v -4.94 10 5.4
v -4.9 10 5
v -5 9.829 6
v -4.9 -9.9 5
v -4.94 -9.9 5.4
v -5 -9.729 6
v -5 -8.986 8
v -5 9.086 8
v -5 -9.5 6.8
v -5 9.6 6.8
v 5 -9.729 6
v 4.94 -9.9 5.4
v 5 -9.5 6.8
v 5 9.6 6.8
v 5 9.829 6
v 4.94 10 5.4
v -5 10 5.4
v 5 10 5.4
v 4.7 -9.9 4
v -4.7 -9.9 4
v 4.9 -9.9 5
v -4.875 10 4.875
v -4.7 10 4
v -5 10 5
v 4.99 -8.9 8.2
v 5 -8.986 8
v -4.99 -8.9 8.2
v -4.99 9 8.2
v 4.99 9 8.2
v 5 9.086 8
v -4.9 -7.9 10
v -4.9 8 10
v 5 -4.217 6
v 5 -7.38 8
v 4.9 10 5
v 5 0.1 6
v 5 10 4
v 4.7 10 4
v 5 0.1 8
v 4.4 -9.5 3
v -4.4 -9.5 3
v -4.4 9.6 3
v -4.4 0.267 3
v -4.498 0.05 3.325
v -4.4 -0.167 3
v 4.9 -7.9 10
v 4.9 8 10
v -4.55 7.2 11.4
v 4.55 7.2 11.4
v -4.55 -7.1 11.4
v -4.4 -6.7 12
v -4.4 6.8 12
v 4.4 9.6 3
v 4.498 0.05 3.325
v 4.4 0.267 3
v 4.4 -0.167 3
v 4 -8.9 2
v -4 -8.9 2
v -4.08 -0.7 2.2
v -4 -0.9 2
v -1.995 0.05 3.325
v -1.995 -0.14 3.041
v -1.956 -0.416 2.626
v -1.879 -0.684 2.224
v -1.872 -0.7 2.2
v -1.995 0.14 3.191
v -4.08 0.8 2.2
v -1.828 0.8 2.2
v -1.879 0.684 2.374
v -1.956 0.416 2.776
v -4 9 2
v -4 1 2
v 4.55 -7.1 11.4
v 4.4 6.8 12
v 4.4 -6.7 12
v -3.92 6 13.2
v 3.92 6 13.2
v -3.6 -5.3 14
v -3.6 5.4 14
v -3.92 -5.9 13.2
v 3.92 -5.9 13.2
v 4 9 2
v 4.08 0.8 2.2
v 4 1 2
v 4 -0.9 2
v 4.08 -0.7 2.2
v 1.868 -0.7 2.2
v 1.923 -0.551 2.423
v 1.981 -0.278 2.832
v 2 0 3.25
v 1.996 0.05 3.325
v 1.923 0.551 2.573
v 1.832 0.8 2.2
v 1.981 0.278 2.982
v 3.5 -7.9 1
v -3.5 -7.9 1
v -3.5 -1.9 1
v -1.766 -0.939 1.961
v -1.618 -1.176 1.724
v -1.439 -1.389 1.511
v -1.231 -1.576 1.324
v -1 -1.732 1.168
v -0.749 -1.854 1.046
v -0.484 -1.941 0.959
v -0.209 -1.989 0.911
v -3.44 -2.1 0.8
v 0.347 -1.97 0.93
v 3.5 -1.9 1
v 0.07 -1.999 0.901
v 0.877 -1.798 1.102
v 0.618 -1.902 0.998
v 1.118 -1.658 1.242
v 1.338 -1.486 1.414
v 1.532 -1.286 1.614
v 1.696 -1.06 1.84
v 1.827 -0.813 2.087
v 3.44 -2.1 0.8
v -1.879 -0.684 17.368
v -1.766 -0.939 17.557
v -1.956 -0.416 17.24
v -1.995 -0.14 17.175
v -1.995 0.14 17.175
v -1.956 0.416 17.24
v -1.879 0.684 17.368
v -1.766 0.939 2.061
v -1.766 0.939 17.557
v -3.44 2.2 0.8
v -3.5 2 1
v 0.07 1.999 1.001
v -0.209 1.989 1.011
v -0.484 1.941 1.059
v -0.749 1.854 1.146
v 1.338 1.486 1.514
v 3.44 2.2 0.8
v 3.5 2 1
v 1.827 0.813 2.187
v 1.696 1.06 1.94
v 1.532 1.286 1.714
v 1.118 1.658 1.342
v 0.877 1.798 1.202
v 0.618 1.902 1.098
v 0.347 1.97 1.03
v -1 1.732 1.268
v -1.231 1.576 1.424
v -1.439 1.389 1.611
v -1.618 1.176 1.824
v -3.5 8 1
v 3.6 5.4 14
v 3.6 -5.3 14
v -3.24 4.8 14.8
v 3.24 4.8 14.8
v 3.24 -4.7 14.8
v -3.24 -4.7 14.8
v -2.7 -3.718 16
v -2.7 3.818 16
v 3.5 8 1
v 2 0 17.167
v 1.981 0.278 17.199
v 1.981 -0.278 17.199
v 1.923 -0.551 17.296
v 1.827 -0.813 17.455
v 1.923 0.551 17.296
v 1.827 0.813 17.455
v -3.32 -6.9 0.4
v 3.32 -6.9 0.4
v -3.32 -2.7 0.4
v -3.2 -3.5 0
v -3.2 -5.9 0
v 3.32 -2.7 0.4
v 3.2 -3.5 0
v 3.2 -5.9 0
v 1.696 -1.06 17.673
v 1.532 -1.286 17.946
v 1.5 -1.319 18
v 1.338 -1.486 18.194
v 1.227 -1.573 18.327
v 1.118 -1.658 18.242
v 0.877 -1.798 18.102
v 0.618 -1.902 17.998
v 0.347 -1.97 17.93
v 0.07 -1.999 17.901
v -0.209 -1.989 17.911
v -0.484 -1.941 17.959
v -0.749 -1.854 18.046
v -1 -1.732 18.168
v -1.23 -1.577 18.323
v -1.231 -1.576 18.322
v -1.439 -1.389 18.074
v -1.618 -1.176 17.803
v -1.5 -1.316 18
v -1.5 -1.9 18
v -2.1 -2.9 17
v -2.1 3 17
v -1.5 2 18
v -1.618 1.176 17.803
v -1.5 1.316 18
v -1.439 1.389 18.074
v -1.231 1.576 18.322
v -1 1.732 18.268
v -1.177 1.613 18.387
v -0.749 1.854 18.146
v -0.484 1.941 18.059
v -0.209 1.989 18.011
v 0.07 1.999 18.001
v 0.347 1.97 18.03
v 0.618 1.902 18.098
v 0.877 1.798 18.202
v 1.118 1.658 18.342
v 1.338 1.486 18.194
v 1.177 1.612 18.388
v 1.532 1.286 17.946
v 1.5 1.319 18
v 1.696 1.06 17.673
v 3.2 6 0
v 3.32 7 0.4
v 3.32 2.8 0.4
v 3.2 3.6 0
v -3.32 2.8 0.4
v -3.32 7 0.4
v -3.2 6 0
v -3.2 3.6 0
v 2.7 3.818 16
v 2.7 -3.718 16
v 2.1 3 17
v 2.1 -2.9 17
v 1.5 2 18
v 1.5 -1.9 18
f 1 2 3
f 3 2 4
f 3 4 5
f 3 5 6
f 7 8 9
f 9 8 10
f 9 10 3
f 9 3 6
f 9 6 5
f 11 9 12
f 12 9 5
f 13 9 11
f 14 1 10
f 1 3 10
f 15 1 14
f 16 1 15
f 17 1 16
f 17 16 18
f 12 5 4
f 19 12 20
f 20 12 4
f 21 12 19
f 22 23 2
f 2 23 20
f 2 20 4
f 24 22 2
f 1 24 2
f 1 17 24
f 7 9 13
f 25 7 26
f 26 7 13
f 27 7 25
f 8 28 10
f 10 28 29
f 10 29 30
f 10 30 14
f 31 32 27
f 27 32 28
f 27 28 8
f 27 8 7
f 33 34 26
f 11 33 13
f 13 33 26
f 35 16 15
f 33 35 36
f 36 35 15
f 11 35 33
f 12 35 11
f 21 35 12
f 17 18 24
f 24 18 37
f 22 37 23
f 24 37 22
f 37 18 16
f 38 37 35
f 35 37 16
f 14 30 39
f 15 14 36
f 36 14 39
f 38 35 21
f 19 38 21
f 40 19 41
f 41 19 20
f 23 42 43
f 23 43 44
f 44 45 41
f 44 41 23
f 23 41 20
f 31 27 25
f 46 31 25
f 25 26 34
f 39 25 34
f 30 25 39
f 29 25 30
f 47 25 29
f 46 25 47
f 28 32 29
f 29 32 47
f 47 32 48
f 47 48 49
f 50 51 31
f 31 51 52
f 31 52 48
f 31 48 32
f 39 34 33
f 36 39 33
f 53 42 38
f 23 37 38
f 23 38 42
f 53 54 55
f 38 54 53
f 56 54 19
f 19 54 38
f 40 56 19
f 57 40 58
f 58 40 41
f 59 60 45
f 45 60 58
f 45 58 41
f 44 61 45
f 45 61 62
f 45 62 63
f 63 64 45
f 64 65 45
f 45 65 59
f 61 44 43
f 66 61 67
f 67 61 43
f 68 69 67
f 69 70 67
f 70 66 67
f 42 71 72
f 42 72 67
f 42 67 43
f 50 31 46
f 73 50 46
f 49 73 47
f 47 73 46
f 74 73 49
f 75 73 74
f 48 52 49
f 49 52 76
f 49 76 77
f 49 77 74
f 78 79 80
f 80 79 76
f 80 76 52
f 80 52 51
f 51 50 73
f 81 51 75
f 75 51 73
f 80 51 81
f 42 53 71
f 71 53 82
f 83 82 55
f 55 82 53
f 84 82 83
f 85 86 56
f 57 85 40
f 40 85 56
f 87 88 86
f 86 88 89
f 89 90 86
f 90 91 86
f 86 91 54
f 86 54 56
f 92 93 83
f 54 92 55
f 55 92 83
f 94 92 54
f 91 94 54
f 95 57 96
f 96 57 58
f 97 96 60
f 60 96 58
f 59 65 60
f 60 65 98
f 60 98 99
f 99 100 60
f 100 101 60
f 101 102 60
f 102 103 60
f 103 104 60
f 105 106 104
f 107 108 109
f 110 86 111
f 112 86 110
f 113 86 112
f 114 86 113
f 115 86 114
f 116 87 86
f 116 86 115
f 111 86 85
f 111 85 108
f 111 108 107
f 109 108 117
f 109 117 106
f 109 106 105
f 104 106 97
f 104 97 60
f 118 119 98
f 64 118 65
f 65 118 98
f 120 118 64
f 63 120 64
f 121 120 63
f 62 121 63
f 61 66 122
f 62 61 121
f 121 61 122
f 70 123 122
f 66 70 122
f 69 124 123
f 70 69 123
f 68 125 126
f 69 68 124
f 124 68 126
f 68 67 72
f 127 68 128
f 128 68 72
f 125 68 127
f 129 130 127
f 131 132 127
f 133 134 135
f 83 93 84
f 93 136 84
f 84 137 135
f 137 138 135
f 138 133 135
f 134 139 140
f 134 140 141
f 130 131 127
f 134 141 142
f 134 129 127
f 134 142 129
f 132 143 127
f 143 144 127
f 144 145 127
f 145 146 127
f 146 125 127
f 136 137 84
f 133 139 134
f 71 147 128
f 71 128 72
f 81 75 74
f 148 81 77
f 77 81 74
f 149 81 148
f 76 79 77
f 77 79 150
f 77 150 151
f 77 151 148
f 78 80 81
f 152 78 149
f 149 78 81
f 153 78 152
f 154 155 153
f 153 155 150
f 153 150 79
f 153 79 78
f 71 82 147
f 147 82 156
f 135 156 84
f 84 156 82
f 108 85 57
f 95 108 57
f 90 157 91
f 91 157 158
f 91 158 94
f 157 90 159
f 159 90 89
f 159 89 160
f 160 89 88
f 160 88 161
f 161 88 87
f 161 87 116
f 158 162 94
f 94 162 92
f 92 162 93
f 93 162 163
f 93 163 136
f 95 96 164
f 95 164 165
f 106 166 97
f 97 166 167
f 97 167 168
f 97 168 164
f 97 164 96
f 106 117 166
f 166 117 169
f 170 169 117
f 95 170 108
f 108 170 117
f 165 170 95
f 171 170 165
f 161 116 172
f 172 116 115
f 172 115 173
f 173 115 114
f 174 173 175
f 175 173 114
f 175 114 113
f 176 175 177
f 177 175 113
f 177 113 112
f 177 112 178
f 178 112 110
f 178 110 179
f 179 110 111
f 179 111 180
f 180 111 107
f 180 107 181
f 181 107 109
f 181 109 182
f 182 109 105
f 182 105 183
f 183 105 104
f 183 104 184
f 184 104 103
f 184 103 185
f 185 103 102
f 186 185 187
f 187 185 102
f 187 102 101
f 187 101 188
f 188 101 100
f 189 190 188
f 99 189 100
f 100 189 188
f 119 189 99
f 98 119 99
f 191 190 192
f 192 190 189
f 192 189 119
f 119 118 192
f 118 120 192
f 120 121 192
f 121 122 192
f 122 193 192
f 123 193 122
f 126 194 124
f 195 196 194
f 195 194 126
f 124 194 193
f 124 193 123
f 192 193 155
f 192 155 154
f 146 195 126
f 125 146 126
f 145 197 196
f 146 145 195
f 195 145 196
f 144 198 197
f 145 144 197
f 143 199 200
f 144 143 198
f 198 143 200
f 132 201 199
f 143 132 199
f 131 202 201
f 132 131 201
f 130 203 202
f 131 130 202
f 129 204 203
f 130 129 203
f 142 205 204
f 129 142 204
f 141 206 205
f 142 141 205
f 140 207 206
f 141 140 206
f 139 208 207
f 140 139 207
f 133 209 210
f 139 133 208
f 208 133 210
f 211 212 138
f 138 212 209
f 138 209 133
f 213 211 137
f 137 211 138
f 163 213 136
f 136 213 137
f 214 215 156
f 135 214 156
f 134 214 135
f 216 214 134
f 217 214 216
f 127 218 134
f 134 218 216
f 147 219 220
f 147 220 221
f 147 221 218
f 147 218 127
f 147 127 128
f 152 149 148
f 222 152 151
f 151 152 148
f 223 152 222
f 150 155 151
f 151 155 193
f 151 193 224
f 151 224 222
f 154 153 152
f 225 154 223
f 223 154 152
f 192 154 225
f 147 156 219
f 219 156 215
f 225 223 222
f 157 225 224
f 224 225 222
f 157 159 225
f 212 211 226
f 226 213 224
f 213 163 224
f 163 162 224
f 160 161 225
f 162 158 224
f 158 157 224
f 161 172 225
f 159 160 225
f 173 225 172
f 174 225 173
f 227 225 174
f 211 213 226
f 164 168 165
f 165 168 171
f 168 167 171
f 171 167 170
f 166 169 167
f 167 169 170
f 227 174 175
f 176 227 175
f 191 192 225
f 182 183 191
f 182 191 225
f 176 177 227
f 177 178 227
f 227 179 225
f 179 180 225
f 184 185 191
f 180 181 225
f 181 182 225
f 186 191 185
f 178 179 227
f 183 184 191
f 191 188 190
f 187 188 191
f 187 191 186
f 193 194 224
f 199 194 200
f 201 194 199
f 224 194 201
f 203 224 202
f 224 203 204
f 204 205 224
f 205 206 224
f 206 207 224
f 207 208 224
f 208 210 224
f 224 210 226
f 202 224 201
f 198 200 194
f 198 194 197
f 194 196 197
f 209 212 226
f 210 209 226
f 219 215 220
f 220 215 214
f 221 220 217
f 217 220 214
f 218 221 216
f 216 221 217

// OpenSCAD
//The lenght of the heart
heartlen=20;

//max thicknes of heart
heartT=heartlen/2;

//the radius of the hole
hole=heartT/5;


//----------------------------------------------------------------------------------------


//making the heartbead
heartbead();


//subtrackt the thicknes from heart. The thicknes would be the same to whole heart whitout this+ makes a hole in the heart
module heartbead() {
  difference() {
    heart();
    Thick();
    cylinder(1.5*heartlen, hole, hole,  center = false, $fn=45 );
  }
}



//placing 2 halfheart beside each other making a whole heart
module heart() {
  union() {
   rotate(a=[0,270]) {
    translate([0,0,-heartT/2]) {
      halfheart();
     } 
     }
    rotate(a=[180,270]){
      translate([0,-0.1,-heartT/2]) {
        halfheart();
      
    }
  }
}
}


// placing the thickness module on both sides of the heart
module Thick() {
  rotate(a=[180,270,90]) {
    thickness();
  }
  rotate(a=[0,270,90]) {
    thickness();
    
  }
}

//The module that makes half of the heart form
module halfheart() {
 linear_extrude(height = heartT, center = false, convexity = 10, twist = 0) {
   polygon( points=[[heartlen*17/100,0],[heartlen*11/100,heartlen*4/100],[heartlen*7/100,heartlen*8/100],[heartlen*4/100,heartlen*11/100],[heartlen*2/100,heartlen*14/100] ,[0,heartlen*18/100],[0,heartlen*30/100],[heartlen*2/100,heartlen*35/100],[heartlen*5/100,heartlen*40/100],[heartlen*10/100,heartlen*45/100],[heartlen*15/100,heartlen*48/100],[heartlen*20/100,heartlen*50/100],[heartlen*27/100,heartlen*50/100],[heartlen*34/100,heartlen*48/100],[heartlen*41/100,heartlen*45/100],[heartlen*50/100,heartlen*40/100],[heartlen*57/100,heartlen*36/100],[heartlen*66/100,heartlen*30/100],[heartlen*74/100,heartlen*24/100],[heartlen*85/100,heartlen*15/100],[heartlen*95/100,heartlen*5/100],[heartlen,0] ] );
   }
}


//the polygone that does the thicknes of the heart (-1 and +1 in some places so that the lines of halfeart and thiock dosent go ontop of each oter
module thickness(){
 linear_extrude(height = heartlen, center = true, convexity = 10, twist = 0) {
   polygon( points=[[heartlen+1,heartT+1], [heartlen+1,-1],[heartlen*90/100,heartT*15/100],[heartlen*80/100,heartT*27/100],[heartlen*70/100,heartT*36/100],[heartlen*60/100,heartT*44/100],[heartlen*50/100,heartT*49/100],[heartlen*40/100,heartT*50/100], [heartlen*30/100,heartT*50/100],[heartlen*25/100,heartT*49/100],[heartlen*20/100,heartT*47/100],[heartlen*15/100,heartT*44/100],[heartlen*10/100,heartT*40/100],[heartlen*5/100,heartT*35/100],[-1,heartT*29/100],[-1,heartT+1] ] );
   }
}
